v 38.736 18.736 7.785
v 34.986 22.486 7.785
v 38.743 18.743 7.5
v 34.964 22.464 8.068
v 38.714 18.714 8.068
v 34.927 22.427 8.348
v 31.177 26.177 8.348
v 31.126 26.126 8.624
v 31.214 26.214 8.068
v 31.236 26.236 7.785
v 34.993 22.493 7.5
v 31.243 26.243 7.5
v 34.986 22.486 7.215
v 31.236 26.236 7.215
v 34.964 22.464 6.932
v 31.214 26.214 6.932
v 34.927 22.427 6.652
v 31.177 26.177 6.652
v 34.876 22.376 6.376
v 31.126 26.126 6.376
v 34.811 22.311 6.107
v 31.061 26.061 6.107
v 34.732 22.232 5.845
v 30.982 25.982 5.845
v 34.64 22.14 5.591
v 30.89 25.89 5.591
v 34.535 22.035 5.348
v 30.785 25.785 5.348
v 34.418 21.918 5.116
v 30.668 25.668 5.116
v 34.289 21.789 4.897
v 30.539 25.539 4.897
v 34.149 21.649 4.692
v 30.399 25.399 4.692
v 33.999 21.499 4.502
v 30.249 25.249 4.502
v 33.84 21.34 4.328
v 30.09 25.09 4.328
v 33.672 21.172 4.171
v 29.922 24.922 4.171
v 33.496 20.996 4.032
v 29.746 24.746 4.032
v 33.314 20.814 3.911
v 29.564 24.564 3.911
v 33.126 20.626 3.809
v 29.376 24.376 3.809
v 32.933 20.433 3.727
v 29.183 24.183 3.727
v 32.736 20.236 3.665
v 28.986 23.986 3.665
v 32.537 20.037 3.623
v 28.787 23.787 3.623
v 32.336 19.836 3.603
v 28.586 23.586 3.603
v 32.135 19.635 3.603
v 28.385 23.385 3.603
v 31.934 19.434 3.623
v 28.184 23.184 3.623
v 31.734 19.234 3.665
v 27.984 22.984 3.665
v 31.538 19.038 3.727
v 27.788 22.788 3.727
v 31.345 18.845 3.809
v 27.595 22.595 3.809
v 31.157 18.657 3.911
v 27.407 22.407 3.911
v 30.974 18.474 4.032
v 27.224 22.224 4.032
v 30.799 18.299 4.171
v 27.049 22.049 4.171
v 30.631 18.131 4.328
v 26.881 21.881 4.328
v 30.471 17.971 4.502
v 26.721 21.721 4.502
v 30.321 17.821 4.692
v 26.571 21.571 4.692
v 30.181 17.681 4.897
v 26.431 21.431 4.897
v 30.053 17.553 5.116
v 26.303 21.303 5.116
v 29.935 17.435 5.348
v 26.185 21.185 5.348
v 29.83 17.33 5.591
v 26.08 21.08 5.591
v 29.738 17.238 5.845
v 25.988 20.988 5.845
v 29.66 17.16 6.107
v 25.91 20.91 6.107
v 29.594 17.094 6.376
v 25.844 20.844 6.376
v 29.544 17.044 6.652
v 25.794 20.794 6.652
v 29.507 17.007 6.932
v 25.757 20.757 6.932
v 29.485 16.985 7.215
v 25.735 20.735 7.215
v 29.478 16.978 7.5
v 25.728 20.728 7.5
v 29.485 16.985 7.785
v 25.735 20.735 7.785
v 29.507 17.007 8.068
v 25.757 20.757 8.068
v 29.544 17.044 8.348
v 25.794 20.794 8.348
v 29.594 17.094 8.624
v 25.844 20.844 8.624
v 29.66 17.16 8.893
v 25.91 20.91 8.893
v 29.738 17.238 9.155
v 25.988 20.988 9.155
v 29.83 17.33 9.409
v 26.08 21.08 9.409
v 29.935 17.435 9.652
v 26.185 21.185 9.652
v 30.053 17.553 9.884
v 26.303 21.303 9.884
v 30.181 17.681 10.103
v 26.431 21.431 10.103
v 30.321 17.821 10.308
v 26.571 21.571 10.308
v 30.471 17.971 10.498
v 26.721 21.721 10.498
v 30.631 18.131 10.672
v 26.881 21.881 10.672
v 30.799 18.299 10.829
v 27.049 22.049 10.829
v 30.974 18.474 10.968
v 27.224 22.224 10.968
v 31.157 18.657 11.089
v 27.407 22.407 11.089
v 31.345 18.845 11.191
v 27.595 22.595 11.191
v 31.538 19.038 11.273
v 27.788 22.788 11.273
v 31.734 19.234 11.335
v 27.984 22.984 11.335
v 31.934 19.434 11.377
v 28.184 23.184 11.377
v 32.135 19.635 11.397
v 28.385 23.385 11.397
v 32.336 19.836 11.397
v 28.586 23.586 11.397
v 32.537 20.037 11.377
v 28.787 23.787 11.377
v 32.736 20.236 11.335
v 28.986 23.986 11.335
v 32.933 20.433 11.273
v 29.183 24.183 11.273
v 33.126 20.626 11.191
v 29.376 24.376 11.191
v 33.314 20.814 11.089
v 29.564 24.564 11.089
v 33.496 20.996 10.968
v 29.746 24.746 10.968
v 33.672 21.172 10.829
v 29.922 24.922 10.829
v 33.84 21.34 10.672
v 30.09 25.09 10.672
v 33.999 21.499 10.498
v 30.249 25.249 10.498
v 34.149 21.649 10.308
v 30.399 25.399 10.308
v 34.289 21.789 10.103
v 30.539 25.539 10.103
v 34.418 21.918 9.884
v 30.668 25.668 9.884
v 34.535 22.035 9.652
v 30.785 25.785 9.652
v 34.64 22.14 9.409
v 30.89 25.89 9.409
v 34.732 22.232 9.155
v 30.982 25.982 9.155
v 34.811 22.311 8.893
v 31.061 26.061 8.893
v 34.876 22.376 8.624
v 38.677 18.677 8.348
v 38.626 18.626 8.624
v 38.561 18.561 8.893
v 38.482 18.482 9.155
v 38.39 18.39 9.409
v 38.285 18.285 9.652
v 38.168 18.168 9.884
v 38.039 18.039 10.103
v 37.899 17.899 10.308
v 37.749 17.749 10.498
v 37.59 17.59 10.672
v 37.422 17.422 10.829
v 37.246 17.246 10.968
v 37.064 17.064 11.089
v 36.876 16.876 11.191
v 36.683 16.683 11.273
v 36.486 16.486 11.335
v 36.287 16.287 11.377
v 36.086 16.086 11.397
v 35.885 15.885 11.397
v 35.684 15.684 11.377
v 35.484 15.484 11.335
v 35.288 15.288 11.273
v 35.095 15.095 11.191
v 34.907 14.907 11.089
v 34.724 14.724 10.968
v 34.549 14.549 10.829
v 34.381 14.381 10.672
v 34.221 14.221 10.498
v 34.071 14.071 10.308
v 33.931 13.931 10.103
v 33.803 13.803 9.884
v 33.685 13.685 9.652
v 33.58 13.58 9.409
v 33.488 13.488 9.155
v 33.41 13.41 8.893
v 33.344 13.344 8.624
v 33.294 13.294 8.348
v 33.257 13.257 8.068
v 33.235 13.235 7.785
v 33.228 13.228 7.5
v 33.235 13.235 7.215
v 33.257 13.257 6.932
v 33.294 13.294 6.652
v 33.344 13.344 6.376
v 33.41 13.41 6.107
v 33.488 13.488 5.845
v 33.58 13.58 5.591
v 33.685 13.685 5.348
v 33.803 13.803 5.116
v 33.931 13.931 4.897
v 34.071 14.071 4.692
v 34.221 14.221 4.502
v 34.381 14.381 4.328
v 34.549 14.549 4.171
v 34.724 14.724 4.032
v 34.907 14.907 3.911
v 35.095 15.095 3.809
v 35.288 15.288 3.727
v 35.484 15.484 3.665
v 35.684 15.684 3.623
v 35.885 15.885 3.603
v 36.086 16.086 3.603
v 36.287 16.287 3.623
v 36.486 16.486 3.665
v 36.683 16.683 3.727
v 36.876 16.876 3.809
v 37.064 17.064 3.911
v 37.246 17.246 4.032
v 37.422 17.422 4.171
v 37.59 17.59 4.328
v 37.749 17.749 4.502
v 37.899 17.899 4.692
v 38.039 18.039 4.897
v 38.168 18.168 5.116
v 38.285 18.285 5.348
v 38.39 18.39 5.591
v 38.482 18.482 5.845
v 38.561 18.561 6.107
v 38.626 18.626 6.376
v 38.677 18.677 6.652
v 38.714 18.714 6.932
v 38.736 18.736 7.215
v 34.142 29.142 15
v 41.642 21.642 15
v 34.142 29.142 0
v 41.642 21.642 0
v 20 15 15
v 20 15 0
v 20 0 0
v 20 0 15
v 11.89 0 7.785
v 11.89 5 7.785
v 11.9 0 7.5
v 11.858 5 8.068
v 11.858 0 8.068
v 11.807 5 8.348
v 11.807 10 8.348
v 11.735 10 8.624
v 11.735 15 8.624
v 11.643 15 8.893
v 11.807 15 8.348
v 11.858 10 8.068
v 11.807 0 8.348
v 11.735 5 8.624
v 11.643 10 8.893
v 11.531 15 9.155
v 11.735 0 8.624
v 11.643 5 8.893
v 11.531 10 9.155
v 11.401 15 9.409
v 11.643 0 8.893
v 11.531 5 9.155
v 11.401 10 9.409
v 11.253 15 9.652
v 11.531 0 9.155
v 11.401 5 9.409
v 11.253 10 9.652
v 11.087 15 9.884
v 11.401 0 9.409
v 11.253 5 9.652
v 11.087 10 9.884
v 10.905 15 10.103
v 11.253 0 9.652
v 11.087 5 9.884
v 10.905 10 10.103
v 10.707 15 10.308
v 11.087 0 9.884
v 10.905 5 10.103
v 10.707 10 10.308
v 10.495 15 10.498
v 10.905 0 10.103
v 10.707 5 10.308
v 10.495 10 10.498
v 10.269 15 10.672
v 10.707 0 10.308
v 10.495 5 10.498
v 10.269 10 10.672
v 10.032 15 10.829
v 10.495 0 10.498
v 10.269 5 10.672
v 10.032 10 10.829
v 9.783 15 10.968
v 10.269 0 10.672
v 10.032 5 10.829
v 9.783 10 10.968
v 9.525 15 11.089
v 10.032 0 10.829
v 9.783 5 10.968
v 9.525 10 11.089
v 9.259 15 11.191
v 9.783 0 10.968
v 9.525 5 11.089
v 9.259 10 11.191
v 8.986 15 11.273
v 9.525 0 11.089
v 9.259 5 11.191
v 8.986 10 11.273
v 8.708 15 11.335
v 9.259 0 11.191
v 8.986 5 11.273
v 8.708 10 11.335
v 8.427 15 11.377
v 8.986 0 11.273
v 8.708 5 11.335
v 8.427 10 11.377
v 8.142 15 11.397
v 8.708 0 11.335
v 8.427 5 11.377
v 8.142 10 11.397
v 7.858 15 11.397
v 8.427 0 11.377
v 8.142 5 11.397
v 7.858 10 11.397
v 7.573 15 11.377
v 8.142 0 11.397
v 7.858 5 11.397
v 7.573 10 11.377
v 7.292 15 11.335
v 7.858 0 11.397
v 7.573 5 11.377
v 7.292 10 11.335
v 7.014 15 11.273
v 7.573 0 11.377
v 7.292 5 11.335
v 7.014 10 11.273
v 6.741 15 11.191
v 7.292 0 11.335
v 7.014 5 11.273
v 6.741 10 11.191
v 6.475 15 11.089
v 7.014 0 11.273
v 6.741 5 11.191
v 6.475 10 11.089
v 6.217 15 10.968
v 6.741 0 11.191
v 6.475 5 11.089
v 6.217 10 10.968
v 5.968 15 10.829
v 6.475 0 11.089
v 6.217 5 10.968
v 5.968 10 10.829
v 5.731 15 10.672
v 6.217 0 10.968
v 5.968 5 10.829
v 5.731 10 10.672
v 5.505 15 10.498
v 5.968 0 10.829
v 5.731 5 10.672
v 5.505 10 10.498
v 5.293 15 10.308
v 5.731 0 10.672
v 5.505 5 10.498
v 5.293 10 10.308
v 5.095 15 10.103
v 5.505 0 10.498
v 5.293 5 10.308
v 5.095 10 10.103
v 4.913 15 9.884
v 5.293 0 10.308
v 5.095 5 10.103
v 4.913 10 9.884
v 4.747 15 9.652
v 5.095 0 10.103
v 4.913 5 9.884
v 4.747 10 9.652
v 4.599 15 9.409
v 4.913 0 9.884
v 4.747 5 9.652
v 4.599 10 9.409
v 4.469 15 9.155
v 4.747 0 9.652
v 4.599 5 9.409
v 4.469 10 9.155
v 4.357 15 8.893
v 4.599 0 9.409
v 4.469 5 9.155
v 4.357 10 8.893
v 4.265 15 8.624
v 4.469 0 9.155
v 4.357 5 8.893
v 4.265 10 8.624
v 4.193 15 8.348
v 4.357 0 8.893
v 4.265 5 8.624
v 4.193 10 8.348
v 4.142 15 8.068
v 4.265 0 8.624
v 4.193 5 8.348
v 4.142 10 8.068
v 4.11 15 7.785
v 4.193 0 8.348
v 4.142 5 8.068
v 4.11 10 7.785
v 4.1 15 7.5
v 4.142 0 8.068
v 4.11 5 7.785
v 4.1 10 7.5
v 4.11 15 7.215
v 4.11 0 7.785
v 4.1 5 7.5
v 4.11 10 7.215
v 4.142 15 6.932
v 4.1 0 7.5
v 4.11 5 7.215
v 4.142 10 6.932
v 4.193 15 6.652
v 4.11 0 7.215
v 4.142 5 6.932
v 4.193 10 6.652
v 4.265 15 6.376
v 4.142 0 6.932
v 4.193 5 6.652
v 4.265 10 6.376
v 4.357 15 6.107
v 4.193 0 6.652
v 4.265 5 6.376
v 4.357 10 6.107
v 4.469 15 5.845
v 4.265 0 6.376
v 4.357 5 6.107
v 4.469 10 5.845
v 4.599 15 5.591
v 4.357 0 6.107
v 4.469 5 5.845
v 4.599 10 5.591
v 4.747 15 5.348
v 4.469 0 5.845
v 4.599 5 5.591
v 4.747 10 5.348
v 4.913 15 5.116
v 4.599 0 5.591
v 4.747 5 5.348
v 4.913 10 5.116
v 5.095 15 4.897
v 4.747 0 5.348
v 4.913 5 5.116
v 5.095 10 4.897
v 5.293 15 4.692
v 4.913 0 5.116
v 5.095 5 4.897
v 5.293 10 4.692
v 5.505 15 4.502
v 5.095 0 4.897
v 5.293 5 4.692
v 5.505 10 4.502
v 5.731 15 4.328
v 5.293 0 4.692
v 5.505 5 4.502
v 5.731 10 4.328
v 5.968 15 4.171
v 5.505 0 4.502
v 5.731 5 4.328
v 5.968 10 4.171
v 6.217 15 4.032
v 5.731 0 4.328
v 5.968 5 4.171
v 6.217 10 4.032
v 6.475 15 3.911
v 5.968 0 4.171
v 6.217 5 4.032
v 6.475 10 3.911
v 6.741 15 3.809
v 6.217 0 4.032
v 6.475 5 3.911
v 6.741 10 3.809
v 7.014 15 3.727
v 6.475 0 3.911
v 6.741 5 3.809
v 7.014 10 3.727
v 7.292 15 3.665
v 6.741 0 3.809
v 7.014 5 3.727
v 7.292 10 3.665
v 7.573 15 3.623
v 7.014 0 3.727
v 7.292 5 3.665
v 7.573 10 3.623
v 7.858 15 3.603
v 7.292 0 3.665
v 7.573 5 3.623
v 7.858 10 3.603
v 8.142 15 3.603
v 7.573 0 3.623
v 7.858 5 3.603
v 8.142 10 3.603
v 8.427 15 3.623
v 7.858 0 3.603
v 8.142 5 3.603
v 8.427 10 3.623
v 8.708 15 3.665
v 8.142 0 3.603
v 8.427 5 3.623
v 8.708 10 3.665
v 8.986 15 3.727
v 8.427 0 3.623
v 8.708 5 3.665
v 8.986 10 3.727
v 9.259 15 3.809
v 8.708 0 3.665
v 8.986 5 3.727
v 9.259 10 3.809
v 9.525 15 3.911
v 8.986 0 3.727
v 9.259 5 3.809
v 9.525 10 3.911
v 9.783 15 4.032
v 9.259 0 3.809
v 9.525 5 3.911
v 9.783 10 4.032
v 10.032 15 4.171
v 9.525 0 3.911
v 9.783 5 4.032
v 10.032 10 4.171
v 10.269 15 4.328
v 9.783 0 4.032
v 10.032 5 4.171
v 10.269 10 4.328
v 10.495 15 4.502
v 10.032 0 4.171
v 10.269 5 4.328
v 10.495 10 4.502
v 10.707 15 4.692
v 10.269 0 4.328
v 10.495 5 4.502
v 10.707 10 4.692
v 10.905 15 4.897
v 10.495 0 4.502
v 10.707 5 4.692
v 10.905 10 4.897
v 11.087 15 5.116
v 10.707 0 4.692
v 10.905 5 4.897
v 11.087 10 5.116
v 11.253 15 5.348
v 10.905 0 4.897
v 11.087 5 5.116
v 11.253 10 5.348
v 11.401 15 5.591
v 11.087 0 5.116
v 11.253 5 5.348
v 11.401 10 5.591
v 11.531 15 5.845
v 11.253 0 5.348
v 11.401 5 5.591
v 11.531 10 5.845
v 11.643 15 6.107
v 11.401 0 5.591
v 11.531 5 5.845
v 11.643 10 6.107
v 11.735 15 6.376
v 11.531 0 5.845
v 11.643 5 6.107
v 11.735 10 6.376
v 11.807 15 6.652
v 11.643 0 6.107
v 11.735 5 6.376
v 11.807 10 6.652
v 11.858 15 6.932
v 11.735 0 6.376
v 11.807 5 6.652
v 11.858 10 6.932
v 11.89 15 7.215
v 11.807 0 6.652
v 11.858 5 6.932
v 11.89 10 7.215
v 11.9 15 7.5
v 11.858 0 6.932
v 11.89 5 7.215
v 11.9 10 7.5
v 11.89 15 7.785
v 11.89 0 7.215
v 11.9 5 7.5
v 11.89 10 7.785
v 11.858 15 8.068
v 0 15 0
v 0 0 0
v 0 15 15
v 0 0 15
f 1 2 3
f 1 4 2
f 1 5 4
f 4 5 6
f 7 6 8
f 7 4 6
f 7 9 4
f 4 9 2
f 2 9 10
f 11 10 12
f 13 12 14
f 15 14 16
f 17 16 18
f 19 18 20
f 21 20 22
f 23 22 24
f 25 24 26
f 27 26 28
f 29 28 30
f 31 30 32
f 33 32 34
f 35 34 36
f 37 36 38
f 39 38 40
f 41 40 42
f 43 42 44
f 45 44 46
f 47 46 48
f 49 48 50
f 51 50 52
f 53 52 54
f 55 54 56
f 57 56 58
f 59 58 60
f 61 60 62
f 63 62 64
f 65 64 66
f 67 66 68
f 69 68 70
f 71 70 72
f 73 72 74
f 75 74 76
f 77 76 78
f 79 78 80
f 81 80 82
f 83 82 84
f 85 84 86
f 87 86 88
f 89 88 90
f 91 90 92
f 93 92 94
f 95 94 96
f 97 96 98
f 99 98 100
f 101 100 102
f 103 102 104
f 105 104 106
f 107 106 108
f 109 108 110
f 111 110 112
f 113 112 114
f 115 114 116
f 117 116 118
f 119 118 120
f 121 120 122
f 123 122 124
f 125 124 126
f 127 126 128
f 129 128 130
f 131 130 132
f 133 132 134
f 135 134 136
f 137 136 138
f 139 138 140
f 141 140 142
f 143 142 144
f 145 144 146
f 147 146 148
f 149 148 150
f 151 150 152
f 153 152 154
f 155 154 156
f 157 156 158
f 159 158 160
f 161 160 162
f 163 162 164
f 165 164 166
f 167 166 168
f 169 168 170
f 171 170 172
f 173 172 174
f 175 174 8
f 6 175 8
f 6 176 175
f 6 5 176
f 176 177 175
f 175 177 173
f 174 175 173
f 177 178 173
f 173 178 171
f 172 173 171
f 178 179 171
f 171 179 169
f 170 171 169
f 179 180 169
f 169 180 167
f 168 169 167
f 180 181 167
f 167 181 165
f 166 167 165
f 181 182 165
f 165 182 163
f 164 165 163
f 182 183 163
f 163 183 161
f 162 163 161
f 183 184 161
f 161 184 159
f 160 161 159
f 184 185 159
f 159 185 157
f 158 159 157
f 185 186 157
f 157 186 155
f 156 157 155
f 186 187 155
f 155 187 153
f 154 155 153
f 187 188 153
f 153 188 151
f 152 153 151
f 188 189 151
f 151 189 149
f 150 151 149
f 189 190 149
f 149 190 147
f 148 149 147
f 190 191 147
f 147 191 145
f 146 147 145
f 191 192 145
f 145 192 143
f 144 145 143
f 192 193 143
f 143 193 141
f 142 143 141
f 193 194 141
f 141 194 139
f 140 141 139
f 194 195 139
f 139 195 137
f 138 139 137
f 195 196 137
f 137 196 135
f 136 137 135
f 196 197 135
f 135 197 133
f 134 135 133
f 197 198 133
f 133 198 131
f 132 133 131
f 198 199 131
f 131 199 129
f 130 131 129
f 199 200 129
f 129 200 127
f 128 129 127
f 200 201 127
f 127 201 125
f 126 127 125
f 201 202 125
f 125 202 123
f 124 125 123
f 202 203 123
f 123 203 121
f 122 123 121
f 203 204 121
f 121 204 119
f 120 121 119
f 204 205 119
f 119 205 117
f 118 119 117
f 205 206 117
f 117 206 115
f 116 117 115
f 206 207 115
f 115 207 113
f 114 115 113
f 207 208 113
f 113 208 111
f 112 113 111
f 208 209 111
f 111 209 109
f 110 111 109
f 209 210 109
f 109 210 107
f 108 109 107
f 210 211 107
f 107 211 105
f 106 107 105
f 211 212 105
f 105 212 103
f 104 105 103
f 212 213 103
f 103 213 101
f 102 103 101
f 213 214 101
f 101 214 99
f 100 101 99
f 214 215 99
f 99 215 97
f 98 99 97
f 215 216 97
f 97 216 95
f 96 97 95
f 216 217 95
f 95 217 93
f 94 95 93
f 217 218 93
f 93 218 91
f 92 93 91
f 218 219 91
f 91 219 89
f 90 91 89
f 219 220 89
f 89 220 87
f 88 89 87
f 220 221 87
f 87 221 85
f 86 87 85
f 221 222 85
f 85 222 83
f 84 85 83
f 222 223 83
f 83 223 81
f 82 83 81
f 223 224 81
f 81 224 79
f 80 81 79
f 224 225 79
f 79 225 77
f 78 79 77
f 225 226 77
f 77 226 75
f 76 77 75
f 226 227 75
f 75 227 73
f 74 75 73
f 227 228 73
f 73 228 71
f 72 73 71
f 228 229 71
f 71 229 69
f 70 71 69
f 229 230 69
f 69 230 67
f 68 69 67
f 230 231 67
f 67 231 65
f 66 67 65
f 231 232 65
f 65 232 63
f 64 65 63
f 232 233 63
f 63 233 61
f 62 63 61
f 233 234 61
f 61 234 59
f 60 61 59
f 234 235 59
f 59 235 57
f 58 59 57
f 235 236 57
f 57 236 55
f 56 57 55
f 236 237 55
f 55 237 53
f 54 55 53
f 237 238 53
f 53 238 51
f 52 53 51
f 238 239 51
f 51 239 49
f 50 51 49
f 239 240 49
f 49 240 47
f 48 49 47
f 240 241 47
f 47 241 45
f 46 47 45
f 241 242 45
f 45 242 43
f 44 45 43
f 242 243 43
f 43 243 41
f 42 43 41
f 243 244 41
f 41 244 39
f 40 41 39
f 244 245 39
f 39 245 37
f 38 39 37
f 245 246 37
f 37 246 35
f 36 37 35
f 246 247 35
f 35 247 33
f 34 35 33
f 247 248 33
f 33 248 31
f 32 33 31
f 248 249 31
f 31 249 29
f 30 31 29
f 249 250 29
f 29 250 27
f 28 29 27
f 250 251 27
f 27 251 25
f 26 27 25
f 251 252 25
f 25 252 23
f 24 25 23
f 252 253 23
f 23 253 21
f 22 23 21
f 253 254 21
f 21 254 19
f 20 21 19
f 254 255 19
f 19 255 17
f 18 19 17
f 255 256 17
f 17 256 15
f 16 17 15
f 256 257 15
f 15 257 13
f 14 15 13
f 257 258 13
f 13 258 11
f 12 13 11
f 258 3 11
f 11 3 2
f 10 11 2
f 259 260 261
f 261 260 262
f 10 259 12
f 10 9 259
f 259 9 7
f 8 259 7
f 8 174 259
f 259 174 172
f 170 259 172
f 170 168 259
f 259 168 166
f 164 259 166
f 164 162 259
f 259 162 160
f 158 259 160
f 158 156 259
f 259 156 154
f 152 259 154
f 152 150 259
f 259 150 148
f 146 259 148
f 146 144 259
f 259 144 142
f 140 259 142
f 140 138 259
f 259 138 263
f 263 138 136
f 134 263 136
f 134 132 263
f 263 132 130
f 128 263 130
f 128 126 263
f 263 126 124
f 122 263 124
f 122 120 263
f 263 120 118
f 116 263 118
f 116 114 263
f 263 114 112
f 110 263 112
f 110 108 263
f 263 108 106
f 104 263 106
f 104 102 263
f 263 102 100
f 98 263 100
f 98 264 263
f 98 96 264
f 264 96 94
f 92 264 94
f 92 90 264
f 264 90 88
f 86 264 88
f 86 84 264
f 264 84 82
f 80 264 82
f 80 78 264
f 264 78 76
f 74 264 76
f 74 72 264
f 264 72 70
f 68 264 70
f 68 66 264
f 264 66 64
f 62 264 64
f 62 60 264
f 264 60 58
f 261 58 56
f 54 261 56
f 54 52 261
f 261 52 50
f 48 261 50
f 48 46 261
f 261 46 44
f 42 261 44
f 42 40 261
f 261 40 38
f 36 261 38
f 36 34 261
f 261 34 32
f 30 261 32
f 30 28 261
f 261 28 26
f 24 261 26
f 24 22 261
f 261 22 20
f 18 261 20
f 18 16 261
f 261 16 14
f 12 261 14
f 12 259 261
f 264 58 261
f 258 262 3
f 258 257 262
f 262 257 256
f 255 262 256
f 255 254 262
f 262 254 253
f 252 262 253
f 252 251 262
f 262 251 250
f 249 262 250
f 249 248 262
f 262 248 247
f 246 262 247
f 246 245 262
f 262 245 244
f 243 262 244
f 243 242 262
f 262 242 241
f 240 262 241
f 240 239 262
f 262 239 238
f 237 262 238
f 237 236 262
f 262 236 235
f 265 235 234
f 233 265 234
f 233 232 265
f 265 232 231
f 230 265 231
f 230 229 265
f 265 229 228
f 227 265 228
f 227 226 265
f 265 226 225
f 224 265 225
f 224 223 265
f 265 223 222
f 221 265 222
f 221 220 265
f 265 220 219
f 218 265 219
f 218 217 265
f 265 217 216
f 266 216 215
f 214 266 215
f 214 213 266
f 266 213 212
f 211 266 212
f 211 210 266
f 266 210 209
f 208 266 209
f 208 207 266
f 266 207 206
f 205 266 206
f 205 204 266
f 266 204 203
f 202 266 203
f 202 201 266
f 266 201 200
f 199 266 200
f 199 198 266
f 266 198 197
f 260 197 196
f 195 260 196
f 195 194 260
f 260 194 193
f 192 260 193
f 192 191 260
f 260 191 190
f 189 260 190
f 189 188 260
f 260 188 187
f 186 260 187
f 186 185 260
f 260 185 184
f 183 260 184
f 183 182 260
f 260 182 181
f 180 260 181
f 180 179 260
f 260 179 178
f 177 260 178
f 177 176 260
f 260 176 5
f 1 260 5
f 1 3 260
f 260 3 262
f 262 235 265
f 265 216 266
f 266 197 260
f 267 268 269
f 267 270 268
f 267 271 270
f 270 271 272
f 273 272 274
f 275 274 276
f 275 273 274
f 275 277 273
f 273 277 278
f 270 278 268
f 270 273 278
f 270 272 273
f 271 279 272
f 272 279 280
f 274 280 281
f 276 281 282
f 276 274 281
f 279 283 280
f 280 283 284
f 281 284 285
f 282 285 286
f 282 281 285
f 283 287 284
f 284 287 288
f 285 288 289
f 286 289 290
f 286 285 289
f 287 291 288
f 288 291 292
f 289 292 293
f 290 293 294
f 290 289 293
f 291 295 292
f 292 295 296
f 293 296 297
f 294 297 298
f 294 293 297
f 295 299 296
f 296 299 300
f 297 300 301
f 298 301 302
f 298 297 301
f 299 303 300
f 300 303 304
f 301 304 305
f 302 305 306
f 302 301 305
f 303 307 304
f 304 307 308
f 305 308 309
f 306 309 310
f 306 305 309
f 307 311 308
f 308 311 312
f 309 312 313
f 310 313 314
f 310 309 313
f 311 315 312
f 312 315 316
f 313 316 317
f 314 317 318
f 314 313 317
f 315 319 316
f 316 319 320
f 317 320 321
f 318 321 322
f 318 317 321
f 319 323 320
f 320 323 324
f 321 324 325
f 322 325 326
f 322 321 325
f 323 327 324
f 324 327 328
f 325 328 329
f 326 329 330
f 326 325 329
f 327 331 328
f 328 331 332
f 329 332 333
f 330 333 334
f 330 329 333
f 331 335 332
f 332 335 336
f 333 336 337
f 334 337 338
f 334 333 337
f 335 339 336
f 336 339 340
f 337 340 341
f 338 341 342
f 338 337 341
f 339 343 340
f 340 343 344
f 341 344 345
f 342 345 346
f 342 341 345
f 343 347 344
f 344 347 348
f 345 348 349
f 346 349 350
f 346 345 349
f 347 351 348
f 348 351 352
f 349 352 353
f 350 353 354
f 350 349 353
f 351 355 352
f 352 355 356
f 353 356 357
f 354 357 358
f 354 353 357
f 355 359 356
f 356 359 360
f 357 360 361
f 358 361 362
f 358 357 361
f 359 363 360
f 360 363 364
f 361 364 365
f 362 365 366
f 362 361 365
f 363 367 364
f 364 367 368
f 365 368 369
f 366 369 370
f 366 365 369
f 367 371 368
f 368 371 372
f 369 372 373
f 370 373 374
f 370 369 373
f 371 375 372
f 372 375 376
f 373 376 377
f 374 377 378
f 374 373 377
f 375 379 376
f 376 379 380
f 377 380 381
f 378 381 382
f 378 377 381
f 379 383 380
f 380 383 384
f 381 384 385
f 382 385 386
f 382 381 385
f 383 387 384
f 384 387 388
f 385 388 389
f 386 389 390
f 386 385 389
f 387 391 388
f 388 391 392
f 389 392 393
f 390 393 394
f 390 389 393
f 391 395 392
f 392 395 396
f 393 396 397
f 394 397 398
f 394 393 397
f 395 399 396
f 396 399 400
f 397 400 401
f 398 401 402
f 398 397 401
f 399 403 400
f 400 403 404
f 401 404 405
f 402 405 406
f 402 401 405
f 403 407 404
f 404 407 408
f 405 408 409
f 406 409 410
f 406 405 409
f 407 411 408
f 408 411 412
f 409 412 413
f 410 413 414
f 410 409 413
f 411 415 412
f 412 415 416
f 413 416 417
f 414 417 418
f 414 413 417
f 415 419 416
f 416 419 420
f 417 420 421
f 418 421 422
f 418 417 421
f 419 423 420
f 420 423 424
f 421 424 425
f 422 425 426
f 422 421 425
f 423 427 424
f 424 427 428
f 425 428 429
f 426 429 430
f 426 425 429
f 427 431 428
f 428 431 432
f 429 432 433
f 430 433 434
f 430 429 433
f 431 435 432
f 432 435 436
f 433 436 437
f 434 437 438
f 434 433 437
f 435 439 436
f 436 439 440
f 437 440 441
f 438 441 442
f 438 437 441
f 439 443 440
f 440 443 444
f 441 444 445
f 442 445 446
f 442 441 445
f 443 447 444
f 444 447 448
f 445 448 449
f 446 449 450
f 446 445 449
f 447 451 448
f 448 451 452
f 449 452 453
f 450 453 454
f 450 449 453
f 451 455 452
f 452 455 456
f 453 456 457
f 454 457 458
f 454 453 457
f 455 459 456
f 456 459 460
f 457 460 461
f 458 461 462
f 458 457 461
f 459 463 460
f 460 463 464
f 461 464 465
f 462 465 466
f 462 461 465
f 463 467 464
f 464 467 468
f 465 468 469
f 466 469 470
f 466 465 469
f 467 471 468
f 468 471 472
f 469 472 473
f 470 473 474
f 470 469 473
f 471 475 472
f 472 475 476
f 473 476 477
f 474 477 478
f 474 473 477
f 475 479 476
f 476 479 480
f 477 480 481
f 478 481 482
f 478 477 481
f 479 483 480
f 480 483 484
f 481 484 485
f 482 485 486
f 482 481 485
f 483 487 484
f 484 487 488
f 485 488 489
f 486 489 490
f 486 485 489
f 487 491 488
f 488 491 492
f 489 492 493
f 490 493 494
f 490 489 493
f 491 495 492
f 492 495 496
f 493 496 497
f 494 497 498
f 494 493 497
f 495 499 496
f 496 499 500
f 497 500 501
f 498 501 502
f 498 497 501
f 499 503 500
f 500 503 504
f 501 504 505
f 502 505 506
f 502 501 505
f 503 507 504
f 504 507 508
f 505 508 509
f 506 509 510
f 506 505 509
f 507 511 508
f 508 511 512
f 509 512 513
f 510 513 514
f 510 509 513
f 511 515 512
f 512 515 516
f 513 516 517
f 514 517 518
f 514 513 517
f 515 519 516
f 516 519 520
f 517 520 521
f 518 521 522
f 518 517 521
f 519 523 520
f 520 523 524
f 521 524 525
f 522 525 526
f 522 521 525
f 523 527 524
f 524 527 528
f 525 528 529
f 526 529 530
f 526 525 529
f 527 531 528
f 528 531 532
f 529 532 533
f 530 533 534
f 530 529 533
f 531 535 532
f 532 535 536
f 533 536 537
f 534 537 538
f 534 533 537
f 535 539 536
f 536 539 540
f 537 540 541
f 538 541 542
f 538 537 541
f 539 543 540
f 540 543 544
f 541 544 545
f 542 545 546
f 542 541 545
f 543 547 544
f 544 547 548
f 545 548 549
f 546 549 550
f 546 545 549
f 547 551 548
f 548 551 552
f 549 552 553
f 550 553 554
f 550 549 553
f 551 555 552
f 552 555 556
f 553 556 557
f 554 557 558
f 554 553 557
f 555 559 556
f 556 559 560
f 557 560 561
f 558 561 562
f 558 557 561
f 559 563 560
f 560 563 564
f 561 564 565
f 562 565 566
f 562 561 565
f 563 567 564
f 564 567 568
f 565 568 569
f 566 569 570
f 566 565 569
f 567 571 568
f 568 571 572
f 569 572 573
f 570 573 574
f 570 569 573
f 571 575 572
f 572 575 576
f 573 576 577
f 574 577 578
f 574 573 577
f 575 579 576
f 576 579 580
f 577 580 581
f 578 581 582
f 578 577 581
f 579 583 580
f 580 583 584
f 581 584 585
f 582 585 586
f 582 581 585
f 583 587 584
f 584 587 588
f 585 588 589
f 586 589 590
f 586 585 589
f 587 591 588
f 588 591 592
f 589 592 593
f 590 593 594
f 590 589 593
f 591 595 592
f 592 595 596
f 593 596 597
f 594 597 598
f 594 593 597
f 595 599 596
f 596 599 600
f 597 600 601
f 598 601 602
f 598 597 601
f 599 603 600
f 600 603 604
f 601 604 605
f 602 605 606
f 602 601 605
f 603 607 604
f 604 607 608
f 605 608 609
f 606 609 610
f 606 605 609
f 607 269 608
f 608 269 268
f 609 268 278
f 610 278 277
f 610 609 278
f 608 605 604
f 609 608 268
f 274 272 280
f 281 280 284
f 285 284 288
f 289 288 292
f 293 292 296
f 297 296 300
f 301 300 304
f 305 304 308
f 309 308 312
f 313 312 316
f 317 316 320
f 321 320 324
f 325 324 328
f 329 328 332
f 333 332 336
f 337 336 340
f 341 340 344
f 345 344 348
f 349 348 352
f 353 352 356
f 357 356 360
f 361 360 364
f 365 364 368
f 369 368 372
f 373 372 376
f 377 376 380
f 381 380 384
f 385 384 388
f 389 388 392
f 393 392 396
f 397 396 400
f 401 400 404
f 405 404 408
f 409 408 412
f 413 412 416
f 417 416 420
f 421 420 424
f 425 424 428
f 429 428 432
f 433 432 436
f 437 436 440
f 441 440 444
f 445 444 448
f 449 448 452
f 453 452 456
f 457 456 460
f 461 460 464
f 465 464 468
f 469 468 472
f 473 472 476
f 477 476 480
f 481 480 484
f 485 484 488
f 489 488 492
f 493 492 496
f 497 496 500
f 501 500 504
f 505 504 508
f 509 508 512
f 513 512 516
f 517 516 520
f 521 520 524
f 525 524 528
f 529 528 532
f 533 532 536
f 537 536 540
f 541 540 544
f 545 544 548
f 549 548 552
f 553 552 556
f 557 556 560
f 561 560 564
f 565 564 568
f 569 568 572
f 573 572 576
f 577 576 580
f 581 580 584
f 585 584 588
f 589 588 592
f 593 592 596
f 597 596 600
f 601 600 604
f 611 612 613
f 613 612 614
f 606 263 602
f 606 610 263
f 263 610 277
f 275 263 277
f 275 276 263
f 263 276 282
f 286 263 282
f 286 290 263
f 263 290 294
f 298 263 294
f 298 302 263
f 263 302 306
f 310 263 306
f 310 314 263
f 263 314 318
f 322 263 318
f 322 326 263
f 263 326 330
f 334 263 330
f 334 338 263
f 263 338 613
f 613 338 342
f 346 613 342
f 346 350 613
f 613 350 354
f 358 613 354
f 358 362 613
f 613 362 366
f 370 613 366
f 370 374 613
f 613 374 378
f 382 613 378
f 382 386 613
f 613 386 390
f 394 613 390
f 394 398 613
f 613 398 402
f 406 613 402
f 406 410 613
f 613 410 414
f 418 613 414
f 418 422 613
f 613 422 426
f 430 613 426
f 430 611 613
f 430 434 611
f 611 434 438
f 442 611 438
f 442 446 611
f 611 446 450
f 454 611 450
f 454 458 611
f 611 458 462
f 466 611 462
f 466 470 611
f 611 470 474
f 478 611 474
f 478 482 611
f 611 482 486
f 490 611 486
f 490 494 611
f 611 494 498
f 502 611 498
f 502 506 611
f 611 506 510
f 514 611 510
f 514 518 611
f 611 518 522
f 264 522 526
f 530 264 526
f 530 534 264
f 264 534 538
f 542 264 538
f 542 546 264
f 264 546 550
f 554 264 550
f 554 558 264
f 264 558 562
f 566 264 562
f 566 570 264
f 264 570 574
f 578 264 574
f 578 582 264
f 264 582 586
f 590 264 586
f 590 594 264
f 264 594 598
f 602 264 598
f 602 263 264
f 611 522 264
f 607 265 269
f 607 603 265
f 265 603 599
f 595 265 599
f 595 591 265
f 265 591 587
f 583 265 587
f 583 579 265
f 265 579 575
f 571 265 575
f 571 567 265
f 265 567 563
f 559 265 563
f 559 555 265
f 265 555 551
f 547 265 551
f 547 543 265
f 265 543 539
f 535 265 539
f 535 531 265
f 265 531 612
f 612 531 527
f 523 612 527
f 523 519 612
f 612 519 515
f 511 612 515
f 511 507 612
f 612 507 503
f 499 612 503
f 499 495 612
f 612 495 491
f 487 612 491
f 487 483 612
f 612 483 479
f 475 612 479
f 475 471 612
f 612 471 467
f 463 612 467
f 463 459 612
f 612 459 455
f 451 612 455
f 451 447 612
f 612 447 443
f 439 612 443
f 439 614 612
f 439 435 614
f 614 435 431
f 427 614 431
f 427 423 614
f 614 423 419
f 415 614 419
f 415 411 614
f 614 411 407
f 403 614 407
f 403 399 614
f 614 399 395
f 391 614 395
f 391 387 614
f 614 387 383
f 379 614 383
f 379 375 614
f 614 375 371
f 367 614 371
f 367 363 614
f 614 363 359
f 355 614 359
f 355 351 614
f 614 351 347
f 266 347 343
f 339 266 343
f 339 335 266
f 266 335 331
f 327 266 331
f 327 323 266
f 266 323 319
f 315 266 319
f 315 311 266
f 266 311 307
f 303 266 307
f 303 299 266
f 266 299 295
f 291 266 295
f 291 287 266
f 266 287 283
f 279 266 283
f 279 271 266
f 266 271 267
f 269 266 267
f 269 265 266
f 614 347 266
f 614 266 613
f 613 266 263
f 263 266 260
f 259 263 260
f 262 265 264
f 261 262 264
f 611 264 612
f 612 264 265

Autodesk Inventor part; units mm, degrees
ref_plane "YZ Plane" through (0, 0, 0) normal (1, 0, 0) x (0, 1, 0)
ref_plane "XZ Plane" through (0, 0, 0) normal (0, 1, 0) x (-1, 0, 0)
ref_plane "XY Plane" through (0, 0, 0) normal (0, 0, 1) x (1, 0, 0)
sketch "Sketch1" plane through (0, 0, 0) normal (0, 0, 1) x (1, 0, 0)
  line L0 (0, 0) -> (20, 0)
  line L1 (20, 0) -> (20, 15)
  line L2 (20, 15) -> (0, 15)
  line L3 (0, 15) -> (0, 0)
  dimension "d0" = 20
  dimension "d1" = 15
extrude "Extrusion1" add sketch "Sketch1" along normal blind 15
sketch "Sketch2" plane through (0, 15, 0) normal (0, 1, 0) x (1, 0, 0)
  line L0 (0, 0) -> (0, -15) projected
  circle A0 centre (8, -7.5) radius 3.9
  dimension "d4" = 7.8
  dimension "d6" = 8
extrude "Extrusion2" cut sketch "Sketch2" against normal blind 15
sketch "Sketch3" plane through (0, 0, 15) normal (0, 0, 1) x (1, 0, 0)
  line L0 (0, 0) -> (20, 0) projected
  line L1 (20, 0) -> (20, 15) projected
  line L2 (20, 0) -> (34.1421, 14.1421)
  line L3 (20, 15) -> (34.1421, 29.1421)
  line L4 (34.1421, 14.1421) -> (41.6421, 21.6421)
  line L5 (41.6421, 21.6421) -> (34.1421, 29.1421)
  dimension "d9" = 45
  dimension "d10" = 20
  dimension "d11" = 20
extrude "Extrusion3" add sketch "Sketch3" against normal blind 15
sketch "Sketch4" plane through (34.1421, 29.1421, 15) normal (-0.7071, 0.7071, 0) x (0.7071, 0.7071, 0)
  line L0 (0, 0) -> (0, 15) projected
  circle A0 centre (-8, 7.5) radius 3.9
  point P0 (-44.7487, 15)
  dimension "d14" = 7.8
  dimension "d16" = 8
extrude "Extrusion4" cut sketch "Sketch4" against normal blind 15
properties part number "connect stepper"
